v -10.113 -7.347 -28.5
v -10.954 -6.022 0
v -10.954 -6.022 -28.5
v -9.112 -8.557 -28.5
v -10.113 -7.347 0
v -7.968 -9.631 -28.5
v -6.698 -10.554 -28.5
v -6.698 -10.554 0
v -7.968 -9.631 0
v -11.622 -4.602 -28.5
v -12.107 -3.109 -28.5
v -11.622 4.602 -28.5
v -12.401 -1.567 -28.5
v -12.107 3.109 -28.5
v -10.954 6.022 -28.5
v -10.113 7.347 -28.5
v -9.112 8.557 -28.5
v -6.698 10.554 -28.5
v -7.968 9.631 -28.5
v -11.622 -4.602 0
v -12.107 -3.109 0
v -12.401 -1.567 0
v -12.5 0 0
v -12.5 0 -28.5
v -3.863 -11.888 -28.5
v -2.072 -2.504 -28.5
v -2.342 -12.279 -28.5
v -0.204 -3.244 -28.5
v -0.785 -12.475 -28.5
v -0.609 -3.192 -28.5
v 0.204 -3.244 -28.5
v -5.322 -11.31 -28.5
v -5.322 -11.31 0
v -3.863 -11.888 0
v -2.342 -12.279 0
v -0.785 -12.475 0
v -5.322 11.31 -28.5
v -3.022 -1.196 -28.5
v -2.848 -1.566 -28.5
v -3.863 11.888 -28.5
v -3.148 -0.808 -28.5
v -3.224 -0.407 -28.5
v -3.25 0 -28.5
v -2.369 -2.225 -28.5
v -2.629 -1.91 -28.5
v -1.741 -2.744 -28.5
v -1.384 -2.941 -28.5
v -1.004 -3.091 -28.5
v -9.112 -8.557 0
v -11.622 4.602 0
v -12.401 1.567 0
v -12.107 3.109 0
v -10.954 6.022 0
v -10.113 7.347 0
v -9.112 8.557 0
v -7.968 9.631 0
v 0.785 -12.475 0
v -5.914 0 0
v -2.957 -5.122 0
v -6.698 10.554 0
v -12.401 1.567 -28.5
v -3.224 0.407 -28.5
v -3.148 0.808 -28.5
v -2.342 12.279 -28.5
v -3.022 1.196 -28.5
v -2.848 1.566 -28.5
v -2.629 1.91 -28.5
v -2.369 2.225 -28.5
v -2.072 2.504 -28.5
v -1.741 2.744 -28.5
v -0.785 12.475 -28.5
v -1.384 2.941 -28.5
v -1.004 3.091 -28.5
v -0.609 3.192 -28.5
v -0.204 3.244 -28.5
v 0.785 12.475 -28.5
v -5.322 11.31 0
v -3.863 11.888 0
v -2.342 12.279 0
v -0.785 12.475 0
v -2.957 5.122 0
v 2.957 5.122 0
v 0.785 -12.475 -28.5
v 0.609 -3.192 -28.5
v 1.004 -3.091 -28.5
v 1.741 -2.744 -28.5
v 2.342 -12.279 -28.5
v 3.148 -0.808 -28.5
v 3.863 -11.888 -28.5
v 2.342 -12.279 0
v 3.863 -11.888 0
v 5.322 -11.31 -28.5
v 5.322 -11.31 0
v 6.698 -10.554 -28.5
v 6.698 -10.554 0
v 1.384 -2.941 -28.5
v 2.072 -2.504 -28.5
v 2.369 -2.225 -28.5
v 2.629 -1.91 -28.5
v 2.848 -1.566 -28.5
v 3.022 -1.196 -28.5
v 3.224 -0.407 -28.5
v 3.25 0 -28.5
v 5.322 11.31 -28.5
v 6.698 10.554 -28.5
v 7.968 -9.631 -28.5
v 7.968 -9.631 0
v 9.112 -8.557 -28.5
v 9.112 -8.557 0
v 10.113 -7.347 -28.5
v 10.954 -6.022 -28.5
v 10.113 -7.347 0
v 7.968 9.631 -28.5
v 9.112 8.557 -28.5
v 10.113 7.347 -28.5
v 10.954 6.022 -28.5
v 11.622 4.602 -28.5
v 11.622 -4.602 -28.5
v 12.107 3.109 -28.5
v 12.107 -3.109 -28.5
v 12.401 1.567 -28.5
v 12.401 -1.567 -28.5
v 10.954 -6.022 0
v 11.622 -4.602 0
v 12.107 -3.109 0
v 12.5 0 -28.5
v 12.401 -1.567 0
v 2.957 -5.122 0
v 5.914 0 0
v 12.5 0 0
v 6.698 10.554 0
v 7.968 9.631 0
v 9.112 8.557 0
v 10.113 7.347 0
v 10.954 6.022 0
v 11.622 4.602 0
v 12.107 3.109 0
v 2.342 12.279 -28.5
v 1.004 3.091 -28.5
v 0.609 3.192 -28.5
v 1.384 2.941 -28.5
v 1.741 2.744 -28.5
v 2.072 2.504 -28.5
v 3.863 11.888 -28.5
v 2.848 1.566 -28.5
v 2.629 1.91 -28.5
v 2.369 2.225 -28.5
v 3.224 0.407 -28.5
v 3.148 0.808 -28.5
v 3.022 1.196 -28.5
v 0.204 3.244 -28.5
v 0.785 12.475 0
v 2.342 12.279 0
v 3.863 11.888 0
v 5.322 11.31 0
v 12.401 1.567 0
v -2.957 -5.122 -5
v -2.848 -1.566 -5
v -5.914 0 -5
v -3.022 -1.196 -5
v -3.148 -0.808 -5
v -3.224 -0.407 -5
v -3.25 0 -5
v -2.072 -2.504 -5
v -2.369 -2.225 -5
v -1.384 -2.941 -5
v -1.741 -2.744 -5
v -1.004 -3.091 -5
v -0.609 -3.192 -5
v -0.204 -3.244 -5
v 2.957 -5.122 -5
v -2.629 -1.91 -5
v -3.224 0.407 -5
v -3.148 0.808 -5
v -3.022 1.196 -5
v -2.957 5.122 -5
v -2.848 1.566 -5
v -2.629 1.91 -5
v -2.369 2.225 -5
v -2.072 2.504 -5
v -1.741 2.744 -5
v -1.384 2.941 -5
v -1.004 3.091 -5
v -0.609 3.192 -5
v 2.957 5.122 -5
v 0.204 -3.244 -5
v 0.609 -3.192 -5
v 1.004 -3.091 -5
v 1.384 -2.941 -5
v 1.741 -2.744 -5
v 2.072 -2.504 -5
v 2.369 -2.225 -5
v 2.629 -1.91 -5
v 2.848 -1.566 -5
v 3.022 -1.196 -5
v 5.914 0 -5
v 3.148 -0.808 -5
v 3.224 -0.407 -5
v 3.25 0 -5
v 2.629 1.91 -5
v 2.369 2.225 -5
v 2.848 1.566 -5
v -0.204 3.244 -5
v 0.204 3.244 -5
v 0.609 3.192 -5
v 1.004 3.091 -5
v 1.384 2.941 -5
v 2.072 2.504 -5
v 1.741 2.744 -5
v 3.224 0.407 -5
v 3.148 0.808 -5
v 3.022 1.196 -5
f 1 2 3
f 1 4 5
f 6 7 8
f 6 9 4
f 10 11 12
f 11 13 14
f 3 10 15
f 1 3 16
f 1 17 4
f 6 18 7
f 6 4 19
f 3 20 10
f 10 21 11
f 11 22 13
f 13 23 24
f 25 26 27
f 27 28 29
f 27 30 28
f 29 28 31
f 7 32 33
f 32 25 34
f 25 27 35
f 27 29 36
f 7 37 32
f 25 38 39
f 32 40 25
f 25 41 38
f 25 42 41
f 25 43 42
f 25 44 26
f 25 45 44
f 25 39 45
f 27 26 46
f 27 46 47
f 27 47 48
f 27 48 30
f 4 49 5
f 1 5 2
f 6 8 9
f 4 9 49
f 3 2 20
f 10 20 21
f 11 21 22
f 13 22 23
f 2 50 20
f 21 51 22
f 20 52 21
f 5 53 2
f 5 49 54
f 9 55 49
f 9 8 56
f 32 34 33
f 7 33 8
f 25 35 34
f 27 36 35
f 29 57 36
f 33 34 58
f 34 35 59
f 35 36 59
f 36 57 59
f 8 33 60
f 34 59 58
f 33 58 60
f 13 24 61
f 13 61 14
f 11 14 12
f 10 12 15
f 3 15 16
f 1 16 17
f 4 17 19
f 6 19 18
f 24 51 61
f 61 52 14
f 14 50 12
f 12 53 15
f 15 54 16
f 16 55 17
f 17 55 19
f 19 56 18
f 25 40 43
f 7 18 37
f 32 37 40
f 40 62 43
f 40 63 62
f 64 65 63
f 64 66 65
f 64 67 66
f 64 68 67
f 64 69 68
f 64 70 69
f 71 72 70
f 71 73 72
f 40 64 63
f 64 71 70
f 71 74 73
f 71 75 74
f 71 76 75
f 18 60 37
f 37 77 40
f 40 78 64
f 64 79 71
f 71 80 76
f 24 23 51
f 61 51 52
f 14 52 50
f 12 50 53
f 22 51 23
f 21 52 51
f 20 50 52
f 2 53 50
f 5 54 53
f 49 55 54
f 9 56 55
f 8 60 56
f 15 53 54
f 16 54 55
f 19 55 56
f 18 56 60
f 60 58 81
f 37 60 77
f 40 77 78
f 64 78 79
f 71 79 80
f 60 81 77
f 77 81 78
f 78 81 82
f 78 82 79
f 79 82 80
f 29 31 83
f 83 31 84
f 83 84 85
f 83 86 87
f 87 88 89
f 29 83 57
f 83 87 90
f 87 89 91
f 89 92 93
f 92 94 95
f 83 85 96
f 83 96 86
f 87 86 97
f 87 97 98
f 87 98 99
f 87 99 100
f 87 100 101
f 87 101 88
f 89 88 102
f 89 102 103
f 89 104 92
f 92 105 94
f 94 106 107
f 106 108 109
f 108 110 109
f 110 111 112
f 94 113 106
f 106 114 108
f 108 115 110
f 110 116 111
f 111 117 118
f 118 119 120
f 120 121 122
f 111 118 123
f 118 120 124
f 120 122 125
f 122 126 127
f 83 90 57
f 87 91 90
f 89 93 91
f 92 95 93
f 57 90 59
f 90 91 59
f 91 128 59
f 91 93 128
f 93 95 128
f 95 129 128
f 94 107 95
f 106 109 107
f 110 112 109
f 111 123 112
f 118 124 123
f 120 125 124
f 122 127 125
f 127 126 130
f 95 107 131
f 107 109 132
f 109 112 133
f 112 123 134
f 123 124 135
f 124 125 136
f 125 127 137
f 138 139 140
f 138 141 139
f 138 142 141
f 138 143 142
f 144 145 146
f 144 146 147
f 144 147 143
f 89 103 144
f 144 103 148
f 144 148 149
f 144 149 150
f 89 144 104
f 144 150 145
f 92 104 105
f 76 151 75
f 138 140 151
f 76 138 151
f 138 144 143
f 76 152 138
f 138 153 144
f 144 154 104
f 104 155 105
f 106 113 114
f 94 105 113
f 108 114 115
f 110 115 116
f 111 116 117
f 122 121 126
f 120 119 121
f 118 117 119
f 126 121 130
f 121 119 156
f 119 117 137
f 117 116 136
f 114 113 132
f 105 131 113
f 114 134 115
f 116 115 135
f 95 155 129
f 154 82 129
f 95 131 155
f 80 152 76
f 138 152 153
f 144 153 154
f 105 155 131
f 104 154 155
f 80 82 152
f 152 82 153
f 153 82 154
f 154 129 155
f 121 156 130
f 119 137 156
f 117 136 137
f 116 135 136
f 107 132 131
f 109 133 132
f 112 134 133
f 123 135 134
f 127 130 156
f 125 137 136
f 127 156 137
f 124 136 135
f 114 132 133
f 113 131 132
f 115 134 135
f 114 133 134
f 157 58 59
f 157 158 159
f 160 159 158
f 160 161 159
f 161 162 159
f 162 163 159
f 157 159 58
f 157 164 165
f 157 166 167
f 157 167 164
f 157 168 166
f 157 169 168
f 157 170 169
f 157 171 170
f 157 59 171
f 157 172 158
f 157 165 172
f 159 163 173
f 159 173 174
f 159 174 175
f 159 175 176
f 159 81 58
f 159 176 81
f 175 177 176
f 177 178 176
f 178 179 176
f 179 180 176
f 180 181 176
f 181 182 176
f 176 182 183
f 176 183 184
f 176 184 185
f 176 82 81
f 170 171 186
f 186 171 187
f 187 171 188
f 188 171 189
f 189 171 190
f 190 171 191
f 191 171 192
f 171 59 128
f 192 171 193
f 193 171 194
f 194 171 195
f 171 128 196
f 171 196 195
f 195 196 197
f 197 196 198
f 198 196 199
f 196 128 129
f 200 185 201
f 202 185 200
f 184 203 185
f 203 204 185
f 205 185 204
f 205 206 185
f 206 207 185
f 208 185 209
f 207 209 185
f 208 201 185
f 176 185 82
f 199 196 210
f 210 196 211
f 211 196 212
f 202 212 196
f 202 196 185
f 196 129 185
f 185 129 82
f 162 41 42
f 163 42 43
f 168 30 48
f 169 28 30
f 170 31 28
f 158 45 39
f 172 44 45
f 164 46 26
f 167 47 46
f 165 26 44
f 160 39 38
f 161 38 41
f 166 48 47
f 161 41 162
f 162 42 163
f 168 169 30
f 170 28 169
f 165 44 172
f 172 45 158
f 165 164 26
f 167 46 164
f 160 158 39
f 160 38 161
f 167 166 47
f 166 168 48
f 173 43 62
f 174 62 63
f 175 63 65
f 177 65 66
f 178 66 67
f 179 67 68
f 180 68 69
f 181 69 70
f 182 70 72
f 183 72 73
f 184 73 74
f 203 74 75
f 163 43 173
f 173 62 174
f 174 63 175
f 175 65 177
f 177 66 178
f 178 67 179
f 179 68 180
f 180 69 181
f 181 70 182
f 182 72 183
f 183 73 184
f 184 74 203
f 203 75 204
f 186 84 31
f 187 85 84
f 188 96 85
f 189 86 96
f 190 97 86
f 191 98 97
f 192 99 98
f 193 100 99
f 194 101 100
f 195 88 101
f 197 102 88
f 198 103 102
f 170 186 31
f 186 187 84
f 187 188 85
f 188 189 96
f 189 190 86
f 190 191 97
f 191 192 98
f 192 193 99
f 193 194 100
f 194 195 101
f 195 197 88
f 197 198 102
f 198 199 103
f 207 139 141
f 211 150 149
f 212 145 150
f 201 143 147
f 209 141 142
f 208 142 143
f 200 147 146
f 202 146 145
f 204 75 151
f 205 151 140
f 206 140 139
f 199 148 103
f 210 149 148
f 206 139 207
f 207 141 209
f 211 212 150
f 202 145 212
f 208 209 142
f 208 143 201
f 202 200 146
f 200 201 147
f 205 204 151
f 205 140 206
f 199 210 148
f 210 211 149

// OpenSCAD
$fn = 50;

difference() {
	union() {
		translate(v = [0, 0, -28.5]) {
			cylinder(h = 28.5, r = 12.5);
		}
		#translate(v = [0, 0, -30.0]) {
			cylinder(h = 30, r = 2.875);
		}
	}
	union() {
		translate(v = [0, 0, 0]) {
			rotate(a = [0, 0, 0]) {
				difference() {
					union() {
						translate(v = [0, 0, -5]) {
							linear_extrude(height = 5) {
								polygon(points = [[5.914249999999999, 0.0], [2.957125, 5.1218907443321156], [-2.9571249999999982, 5.1218907443321156], [-5.914249999999999, 7.242867331857232e-16], [-2.9571250000000022, -5.121890744332115], [2.9571249999999956, -5.121890744332118]]);
							}
						}
					}
					union();
				}
			}
		}
		#translate(v = [0, 0, -100.0]) {
			cylinder(h = 200, r = 3.25);
		}
	}
}
